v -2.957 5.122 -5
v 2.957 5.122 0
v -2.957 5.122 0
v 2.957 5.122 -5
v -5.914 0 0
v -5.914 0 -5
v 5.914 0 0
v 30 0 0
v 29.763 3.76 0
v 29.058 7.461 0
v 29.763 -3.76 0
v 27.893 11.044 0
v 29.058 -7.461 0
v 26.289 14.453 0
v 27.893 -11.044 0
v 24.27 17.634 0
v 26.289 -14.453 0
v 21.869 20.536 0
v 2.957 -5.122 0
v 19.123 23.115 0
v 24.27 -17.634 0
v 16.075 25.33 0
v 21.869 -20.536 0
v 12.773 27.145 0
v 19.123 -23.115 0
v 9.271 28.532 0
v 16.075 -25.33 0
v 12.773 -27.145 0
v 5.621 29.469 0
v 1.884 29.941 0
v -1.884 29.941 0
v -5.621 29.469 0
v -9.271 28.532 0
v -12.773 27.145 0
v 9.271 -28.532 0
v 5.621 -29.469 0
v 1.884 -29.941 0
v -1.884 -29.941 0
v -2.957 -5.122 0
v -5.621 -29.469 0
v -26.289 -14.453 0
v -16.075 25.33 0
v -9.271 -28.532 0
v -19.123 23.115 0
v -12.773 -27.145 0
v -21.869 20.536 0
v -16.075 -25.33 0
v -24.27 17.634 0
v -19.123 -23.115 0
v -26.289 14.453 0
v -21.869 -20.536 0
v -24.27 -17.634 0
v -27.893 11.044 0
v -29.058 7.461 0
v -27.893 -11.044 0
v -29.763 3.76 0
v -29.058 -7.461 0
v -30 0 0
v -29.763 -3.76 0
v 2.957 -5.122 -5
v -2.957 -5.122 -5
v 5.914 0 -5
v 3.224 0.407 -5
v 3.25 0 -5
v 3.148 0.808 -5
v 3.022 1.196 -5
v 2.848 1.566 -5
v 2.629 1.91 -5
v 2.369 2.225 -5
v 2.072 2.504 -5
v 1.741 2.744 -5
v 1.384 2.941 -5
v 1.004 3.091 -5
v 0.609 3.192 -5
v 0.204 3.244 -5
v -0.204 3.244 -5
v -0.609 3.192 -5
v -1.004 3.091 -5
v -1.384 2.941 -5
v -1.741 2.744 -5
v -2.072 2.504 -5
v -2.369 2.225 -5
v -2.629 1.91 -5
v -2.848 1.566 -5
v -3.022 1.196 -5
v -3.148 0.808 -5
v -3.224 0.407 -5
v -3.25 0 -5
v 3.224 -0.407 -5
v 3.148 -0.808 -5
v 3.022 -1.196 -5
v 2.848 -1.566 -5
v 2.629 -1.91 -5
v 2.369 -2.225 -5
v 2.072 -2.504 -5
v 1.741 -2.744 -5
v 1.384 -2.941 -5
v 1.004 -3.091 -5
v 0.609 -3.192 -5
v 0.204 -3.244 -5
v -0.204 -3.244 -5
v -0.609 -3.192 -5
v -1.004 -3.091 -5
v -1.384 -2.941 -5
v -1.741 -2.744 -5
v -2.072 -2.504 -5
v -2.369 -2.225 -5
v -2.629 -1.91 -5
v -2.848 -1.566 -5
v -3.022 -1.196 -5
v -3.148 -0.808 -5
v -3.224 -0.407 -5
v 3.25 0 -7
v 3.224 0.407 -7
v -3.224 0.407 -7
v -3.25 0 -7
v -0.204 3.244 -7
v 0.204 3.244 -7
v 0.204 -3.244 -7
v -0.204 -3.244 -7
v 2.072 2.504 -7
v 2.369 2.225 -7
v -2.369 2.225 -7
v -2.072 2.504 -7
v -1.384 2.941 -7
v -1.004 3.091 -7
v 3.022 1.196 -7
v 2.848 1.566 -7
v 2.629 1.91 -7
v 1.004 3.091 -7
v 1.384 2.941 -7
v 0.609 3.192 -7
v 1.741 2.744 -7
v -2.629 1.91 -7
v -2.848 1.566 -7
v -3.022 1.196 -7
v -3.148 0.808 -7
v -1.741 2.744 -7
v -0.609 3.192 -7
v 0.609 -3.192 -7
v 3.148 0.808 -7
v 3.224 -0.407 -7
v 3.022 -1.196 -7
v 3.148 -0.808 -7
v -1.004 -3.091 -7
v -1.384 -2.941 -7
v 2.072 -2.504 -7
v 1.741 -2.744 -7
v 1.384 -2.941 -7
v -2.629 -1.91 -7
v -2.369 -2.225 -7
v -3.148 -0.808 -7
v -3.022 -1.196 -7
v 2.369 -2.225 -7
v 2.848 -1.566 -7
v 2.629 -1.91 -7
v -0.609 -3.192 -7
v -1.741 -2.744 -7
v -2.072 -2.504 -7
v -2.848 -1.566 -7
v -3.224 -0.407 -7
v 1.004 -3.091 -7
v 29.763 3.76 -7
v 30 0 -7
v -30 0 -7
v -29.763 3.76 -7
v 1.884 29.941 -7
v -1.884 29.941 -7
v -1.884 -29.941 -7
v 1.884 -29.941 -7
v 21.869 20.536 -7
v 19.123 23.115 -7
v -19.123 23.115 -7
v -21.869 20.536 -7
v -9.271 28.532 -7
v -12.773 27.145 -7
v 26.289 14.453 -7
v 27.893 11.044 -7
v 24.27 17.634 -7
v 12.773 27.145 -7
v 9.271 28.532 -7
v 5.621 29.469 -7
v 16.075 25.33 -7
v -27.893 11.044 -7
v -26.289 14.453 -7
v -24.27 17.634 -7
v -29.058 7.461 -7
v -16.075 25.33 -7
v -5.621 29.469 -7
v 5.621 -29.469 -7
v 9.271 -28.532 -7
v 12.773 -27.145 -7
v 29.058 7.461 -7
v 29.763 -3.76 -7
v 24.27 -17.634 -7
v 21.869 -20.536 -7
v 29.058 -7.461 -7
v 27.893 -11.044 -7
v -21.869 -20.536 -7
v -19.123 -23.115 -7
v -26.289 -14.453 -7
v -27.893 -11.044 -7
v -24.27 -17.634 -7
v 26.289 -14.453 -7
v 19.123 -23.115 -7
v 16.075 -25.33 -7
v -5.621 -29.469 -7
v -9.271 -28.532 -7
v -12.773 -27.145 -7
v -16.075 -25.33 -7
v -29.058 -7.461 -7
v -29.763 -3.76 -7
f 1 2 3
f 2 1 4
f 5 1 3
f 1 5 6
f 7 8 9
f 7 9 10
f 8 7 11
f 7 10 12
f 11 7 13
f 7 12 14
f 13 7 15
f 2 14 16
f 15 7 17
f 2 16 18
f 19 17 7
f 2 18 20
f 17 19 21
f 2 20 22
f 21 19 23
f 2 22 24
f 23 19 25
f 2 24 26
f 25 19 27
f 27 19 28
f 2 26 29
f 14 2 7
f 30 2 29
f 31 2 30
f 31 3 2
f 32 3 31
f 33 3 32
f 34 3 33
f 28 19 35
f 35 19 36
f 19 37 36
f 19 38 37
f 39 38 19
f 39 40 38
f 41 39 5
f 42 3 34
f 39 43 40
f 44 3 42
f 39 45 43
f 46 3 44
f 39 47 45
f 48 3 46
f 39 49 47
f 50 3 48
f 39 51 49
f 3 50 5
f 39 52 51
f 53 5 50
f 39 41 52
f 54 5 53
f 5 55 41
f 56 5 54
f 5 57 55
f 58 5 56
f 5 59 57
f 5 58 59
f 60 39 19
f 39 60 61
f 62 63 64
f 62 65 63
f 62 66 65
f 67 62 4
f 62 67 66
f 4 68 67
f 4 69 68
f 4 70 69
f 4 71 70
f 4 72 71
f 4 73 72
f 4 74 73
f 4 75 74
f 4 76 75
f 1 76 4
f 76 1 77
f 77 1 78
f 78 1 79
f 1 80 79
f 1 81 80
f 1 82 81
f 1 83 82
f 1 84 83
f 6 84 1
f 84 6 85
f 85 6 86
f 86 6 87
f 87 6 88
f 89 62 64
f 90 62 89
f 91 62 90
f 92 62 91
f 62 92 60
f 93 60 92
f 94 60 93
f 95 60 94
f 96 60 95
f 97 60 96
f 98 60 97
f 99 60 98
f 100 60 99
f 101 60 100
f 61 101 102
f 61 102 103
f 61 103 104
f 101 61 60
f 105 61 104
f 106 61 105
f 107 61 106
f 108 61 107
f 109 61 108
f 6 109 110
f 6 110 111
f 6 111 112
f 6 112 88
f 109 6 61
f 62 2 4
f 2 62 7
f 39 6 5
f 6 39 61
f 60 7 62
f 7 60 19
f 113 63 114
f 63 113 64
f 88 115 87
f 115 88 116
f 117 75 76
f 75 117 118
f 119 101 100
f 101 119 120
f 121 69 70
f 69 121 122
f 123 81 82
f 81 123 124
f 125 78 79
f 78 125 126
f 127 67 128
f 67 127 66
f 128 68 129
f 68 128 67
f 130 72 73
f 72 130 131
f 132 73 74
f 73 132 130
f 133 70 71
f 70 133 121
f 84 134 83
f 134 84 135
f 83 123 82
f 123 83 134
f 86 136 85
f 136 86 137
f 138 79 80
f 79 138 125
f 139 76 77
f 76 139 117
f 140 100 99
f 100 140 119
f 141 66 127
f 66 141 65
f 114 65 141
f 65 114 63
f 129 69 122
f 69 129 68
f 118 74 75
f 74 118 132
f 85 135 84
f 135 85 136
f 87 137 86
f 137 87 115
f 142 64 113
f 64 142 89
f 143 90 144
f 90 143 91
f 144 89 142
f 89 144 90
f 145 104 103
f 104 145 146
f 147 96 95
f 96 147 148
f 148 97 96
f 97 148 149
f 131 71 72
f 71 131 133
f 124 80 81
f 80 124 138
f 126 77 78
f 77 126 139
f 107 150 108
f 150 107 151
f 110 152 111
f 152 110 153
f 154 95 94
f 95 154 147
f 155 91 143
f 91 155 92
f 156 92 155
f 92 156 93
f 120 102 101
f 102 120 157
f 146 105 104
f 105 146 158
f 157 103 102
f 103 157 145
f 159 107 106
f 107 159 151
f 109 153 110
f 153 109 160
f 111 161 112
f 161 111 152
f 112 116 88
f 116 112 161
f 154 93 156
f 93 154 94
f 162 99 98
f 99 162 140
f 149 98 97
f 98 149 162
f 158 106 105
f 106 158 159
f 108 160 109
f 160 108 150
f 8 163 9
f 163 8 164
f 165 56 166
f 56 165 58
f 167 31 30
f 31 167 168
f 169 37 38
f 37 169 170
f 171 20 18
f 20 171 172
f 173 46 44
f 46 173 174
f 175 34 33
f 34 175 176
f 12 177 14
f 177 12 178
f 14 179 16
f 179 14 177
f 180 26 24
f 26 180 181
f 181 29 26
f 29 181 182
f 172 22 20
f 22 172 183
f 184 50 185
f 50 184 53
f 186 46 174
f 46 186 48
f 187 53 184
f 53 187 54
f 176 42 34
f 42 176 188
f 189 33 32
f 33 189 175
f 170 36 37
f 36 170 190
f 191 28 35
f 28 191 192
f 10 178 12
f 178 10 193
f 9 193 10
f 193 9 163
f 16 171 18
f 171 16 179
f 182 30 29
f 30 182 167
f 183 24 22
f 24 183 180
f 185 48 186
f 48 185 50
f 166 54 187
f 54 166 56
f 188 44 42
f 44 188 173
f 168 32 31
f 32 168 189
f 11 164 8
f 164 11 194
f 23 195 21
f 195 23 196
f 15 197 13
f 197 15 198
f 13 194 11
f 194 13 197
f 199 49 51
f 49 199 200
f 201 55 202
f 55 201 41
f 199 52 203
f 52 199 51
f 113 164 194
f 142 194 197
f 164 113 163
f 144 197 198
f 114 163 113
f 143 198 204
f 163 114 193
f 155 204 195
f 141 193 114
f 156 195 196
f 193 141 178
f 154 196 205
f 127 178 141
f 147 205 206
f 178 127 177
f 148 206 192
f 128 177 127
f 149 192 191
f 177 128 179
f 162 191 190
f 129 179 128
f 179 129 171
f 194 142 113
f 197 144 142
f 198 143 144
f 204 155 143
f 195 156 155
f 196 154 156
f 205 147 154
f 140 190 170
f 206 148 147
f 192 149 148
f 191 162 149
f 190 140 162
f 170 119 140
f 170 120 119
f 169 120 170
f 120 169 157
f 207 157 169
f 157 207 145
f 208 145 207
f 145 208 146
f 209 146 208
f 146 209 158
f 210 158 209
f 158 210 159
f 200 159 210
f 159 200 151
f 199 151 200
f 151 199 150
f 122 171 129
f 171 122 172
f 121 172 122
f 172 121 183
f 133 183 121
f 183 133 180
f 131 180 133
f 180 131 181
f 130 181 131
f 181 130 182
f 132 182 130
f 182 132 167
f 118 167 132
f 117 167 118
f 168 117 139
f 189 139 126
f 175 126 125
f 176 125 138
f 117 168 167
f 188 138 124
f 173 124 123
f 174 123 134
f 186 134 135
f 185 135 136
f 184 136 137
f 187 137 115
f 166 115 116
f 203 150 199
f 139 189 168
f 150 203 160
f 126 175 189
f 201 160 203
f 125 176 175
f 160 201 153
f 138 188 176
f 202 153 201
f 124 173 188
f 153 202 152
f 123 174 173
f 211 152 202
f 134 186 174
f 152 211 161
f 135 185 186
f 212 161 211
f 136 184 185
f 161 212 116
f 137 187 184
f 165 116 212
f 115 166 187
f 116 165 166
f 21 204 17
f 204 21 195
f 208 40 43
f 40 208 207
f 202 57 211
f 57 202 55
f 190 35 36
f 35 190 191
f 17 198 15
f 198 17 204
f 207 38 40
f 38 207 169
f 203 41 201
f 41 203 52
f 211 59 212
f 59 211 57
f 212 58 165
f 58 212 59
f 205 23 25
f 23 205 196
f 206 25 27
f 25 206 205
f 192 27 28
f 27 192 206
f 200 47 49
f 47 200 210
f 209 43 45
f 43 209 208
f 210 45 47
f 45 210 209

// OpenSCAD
$fn = 50;


difference() {
	union() {
		translate(v = [0, 0, -7.0000000000]) {
			cylinder(h = 7.0000000000, r = 30.0000000000);
		}
	}
	union() {
		translate(v = [0, 0, 0]) {
			rotate(a = [0, 0, 0]) {
				difference() {
					union() {
						translate(v = [0, 0, -5]) {
							#linear_extrude(height = 5) {
								polygon(points = [[5.9142500000, 0.0000000000], [2.9571250000, 5.1218907443], [-2.9571250000, 5.1218907443], [-5.9142500000, 0.0000000000], [-2.9571250000, -5.1218907443], [2.9571250000, -5.1218907443]]);
							}
						}
					}
					union();
				}
			}
		}
		#translate(v = [0, 0, -100.0000000000]) {
			cylinder(h = 200, r = 3.2500000000);
		}
	}
}
